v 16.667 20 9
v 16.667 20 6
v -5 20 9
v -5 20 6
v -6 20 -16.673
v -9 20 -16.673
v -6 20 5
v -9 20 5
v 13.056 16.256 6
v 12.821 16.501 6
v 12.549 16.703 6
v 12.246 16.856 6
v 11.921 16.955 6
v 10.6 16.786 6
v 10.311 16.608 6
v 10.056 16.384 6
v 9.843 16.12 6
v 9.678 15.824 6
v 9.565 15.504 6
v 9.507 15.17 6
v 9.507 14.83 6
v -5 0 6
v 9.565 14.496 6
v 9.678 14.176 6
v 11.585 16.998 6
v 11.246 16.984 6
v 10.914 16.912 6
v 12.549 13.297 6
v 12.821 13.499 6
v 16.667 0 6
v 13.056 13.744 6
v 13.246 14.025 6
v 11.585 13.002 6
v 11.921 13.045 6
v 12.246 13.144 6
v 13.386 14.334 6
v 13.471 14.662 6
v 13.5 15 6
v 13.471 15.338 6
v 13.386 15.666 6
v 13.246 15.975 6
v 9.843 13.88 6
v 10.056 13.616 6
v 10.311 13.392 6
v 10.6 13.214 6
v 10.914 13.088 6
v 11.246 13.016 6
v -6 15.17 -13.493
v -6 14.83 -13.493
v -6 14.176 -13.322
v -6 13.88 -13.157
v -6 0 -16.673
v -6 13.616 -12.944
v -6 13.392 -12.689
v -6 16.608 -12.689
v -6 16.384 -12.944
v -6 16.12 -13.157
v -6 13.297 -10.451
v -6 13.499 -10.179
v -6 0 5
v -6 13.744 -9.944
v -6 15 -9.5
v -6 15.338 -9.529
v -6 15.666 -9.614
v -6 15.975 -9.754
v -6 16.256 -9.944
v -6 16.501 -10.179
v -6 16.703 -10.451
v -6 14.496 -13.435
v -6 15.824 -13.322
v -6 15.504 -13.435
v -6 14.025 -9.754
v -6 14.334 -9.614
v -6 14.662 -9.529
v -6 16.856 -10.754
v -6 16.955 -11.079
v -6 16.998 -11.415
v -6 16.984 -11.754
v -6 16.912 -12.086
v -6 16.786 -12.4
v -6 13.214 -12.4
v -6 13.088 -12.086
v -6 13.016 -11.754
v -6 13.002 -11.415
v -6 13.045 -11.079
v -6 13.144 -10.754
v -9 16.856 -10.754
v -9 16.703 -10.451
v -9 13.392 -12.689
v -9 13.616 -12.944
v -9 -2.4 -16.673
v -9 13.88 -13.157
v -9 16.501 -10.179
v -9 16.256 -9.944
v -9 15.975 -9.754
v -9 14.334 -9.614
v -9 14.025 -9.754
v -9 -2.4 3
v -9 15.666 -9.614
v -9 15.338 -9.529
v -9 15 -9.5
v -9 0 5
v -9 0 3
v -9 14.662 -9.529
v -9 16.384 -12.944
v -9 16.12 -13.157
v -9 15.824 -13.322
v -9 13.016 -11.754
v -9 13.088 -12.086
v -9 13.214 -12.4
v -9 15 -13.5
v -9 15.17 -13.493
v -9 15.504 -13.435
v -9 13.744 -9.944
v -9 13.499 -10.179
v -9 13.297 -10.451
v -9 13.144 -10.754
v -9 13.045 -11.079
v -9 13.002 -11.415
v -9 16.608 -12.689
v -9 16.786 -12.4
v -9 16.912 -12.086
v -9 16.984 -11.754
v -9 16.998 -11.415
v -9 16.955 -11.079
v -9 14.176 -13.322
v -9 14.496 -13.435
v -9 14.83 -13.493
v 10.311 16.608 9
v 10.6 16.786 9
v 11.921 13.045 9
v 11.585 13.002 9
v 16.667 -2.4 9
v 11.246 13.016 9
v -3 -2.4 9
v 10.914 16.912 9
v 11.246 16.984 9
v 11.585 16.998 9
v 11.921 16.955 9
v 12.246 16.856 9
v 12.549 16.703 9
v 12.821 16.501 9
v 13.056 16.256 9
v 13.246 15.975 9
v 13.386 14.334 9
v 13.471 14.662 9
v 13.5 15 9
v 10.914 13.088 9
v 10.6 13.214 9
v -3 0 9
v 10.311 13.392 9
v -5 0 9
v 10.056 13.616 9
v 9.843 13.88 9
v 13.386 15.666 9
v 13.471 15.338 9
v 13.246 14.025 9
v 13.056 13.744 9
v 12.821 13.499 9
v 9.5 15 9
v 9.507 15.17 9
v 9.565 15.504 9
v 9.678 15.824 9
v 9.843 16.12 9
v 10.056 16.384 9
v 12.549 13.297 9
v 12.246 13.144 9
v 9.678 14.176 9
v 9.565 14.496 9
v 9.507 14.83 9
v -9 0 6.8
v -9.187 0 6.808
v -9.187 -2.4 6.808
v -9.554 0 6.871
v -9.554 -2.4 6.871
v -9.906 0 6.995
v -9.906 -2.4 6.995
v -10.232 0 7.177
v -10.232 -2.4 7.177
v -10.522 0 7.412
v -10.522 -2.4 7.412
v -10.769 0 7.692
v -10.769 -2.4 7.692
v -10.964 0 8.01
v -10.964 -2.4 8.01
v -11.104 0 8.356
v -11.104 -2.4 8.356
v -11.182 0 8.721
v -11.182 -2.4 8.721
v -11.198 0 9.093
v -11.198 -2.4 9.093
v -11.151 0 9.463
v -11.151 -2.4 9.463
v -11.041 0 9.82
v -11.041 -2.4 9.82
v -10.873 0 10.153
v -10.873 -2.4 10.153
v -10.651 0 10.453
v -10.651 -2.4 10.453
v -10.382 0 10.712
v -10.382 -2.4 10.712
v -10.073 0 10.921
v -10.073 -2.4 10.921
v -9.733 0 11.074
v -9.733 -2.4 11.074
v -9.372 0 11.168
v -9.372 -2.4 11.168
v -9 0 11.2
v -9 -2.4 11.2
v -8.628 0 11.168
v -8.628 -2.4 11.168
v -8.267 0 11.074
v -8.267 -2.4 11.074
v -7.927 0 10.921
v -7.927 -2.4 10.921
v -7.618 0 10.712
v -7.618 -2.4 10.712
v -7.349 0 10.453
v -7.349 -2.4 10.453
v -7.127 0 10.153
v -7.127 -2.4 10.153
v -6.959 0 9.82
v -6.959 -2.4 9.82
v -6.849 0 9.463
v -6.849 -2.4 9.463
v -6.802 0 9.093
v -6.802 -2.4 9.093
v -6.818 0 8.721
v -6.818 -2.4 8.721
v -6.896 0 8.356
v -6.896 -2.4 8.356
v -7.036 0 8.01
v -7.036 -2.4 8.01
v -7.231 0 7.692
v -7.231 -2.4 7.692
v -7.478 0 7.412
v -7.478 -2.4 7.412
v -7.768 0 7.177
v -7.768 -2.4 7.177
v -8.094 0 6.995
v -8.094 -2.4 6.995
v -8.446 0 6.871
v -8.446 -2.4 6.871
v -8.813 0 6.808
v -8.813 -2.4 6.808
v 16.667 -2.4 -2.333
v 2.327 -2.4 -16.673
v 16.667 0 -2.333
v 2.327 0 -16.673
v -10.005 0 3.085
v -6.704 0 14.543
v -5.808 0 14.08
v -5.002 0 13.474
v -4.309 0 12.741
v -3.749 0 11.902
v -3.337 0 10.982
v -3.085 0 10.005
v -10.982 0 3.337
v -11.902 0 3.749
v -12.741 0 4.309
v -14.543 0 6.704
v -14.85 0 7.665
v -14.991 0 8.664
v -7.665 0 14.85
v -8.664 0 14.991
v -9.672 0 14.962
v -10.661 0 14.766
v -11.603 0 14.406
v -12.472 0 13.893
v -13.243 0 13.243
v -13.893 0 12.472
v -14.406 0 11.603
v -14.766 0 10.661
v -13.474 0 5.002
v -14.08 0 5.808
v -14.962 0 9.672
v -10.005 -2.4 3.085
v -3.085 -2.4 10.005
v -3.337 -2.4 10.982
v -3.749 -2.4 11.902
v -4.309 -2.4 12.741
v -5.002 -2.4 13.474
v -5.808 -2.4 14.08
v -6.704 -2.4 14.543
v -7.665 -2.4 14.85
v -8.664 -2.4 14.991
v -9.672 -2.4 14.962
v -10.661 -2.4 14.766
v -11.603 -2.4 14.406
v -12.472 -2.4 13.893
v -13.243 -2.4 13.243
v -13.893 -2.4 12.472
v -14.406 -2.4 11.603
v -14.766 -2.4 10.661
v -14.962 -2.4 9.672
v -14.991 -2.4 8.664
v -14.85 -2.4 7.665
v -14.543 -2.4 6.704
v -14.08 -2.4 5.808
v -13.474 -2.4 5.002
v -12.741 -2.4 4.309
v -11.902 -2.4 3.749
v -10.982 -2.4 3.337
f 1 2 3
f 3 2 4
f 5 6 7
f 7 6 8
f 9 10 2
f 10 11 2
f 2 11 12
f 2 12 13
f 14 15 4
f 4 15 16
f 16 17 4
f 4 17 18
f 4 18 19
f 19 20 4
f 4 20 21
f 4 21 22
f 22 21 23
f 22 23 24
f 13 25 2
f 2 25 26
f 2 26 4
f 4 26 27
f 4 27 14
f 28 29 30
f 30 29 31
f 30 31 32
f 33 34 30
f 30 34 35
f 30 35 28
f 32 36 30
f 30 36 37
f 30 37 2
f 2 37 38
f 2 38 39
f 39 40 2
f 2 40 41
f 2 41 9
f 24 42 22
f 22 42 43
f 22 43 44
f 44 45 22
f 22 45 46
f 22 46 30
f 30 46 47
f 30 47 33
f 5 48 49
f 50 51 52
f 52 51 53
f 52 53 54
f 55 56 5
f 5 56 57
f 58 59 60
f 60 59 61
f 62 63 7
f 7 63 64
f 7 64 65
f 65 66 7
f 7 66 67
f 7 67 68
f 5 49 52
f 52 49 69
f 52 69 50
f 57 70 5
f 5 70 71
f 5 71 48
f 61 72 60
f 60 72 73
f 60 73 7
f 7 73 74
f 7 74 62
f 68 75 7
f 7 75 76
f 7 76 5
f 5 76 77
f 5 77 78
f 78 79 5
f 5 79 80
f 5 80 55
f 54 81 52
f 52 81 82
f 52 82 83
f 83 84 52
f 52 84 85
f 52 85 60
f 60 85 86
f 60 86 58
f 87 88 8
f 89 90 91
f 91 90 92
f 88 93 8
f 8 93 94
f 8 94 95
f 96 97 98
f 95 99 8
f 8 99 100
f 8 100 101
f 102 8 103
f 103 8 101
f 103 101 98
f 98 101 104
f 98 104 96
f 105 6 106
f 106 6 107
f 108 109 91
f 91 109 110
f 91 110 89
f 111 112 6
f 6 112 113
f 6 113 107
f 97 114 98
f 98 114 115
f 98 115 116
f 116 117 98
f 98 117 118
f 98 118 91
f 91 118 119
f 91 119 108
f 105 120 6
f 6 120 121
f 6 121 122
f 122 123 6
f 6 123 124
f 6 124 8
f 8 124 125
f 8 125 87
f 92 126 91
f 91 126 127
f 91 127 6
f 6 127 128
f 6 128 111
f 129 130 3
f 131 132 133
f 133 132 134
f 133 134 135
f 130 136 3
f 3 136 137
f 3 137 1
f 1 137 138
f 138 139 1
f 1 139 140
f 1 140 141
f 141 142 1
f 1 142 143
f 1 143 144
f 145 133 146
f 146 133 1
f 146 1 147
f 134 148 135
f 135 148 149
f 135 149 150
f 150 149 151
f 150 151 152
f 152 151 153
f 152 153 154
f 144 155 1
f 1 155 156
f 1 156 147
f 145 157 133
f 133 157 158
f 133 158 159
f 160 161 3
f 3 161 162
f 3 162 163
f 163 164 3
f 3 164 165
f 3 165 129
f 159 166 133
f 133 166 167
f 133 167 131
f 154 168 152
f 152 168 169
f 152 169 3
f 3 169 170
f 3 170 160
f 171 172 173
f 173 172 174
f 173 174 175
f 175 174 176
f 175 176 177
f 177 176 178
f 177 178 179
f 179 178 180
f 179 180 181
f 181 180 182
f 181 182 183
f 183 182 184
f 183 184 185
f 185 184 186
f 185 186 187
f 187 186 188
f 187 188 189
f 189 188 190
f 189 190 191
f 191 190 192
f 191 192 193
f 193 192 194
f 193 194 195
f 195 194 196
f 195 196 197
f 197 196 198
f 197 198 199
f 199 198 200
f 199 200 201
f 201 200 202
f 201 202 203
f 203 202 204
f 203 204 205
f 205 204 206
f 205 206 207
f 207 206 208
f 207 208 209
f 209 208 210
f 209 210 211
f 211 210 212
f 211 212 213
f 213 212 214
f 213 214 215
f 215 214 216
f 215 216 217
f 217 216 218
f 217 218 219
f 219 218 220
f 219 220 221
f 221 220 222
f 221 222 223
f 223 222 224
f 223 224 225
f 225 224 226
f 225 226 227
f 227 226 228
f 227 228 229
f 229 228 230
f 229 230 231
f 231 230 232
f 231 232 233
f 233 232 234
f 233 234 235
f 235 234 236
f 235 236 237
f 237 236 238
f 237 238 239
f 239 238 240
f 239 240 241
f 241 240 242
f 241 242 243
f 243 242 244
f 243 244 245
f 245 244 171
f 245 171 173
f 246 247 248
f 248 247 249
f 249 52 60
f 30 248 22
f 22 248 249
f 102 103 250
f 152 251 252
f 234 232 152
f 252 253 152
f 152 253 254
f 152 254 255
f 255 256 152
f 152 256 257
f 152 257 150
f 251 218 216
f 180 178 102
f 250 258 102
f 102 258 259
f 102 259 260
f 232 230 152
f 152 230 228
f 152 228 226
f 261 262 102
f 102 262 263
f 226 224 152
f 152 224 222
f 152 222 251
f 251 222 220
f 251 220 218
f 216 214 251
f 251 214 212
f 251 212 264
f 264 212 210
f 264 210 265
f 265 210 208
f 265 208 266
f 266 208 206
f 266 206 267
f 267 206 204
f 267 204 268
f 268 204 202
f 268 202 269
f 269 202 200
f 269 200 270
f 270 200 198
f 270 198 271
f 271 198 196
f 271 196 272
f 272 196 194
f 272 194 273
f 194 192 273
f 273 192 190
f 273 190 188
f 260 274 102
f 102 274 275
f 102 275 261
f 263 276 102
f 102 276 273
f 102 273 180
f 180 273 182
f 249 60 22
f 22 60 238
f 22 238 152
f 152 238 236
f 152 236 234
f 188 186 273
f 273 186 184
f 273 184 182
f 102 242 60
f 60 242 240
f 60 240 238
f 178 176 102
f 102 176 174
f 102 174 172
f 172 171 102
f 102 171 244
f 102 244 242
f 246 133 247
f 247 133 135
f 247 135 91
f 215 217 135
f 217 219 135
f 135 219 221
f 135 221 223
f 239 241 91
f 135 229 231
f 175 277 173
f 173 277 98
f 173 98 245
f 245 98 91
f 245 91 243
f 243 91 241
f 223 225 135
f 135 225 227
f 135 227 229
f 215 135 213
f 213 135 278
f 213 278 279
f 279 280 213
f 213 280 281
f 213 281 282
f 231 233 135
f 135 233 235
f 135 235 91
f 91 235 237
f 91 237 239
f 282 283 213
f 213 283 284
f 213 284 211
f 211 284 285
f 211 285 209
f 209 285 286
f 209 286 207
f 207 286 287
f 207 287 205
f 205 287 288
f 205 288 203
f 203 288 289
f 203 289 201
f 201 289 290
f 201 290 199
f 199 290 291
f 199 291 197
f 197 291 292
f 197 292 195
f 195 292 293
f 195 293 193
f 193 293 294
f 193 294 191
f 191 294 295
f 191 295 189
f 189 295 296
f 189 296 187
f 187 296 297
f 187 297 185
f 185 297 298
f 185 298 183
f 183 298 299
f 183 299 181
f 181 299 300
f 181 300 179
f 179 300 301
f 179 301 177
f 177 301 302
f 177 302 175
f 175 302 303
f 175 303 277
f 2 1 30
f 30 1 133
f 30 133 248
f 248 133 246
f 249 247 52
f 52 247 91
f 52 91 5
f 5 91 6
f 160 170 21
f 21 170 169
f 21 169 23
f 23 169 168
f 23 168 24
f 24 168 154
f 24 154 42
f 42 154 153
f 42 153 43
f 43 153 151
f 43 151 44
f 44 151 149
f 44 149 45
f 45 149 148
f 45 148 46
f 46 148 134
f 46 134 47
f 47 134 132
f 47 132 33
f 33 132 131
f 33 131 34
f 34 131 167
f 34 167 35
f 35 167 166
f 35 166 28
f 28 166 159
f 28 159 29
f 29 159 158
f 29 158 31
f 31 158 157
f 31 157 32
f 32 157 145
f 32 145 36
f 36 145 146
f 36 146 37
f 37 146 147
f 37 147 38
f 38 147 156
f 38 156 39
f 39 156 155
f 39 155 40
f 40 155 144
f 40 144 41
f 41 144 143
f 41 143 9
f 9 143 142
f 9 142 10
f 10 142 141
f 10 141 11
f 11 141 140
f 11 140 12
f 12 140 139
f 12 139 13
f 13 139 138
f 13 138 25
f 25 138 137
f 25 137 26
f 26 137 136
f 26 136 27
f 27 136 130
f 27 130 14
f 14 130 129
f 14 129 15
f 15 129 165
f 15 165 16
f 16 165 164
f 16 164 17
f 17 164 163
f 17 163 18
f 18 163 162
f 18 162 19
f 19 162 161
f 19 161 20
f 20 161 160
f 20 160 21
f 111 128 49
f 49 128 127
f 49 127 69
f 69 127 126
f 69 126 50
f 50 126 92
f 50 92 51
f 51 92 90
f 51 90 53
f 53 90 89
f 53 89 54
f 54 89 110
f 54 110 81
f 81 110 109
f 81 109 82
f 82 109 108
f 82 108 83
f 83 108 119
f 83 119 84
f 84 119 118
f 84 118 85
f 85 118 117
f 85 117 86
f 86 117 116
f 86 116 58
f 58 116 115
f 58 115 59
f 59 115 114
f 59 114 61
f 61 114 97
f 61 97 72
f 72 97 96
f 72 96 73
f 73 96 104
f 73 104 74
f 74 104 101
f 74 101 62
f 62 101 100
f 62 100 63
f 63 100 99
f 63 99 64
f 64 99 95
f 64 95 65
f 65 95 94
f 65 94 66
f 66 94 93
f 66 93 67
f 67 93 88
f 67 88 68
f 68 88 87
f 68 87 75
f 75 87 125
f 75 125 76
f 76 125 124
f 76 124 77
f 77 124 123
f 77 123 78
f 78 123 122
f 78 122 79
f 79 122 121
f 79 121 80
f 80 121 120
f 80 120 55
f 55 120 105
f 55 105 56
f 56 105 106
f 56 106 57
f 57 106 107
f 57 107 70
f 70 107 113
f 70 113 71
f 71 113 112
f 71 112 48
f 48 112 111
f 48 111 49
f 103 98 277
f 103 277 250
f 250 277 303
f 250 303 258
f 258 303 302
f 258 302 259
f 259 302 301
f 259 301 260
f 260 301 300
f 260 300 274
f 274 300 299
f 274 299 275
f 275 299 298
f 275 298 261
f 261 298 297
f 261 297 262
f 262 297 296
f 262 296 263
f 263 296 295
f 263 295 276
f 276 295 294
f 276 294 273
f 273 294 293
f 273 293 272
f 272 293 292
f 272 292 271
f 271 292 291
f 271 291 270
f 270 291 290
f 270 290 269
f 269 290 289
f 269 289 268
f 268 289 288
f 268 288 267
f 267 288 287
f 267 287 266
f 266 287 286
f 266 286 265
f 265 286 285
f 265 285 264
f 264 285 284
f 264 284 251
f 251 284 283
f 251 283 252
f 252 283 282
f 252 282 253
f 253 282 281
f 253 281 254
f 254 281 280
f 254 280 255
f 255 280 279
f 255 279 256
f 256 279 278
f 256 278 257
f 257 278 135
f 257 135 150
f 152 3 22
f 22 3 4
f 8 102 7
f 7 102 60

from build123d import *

# Parameters (mm, degrees)
BOSS_EXTRUDE1_DEPTH     = 5
BOSS_EXTRUDE2_DEPTH     = 15
SKETCH3_R               = 2
CUT_EXTRUDE1_DEPTH      = 34.496268449
SKETCH4_R               = 2
CUT_EXTRUDE2_DEPTH      = 34.496268449
FILLET1_R               = 1
BOSS_EXTRUDE3_DEPTH     = 2.4
BOSS_EXTRUDE4_DEPTH     = 20
CUT_EXTRUDE3_DEPTH      = 51.527220387
CUT_EXTRUDE3_DEPTH_BACK = 51.527220387
SKETCH7_R               = 2
CUT_EXTRUDE4_DEPTH      = 51.527220387
CUT_EXTRUDE4_DEPTH_BACK = 51.527220387
SKETCH8_R               = 2
CUT_EXTRUDE5_DEPTH      = 20
CUT_EXTRUDE6_DEPTH      = 32.914256521
CUT_EXTRUDE7_DEPTH      = 32.914256521
SKETCH12_R              = 6
BOSS_EXTRUDE5_DEPTH     = 2.4
CUT_EXTRUDE8_DEPTH      = 31.915717398
CUT_EXTRUDE8_DEPTH_BACK = 31.915717398
SKETCH13_R              = 2.2
SKETCH14_R              = 4
CUT_EXTRUDE9_DEPTH      = 31.915717398
CUT_EXTRUDE10_DEPTH     = 31.915717398


with BuildPart() as part:
    # Sketch1 → Boss-Extrude1 (new body)
    with BuildSketch(Plane(origin=(0, 0, 0), x_dir=(1, 0, 0), z_dir=(0, 1, 0))):
        Polygon((0, 0), (0, 19), (19, 0), align=None)
    extrude(amount=BOSS_EXTRUDE1_DEPTH)

    # Sketch2 → Boss-Extrude2 (add)
    with BuildSketch(Plane(origin=(0, 5, 0), x_dir=(1, 0, 0), z_dir=(0, 1, 0))):
        Polygon((0, 19), (0, 0), (19, 0), (16, 3), (3, 3), (3, 16), align=None)
    extrude(amount=BOSS_EXTRUDE2_DEPTH)

    # Sketch3 → Cut-Extrude1 (cut, through all)
    with BuildSketch(Plane.XY):
        with Locations((11.5, 15)):
            Circle(SKETCH3_R)
    extrude(amount=-CUT_EXTRUDE1_DEPTH, mode=Mode.SUBTRACT)

    # Sketch4 → Cut-Extrude2 (cut, through all)
    with BuildSketch(Plane.ZY):
        with Locations((-11.5, 15)):
            Circle(SKETCH4_R)
    extrude(amount=-CUT_EXTRUDE2_DEPTH, mode=Mode.SUBTRACT)

    # Fillet1
    fillet1_edges = [part.edges().sort_by_distance(p)[0] for p in [
        (9.5, 20, -3),
        (3, 20, -9.5),
        (1.5, 20, -17.5),
        (17.5, 20, -1.5),
        (19, 10, 0),
        (0, 10, -19),
    ]]
    fillet(fillet1_edges, radius=FILLET1_R)

    # Sketch5 → Boss-Extrude3 (add)
    with BuildSketch(Plane.XZ):
        Polygon((28, 9), (-9, 9), (-9, -28), align=None)
    extrude(amount=BOSS_EXTRUDE3_DEPTH)

    # Sketch6 → Boss-Extrude4 (add)
    with BuildSketch(Plane(origin=(0, 0, 0), x_dir=(1, 0, 0), z_dir=(0, 1, 0))):
        Polygon((-9, -9), (-9, 16.673246444), (-6, 16.673246444), (-6, -6), (16.666866389, -6), (16.666866389, -9), align=None)
    extrude(amount=BOSS_EXTRUDE4_DEPTH)

    # Sketch7 → Cut-Extrude3 (cut, two sides: drawn at the far end of the back side and taken through both)
    with BuildSketch(Plane.XY.offset(9).offset(-CUT_EXTRUDE3_DEPTH_BACK)):
        with Locations((11.5, 15)):
            Circle(SKETCH7_R)
    extrude(amount=CUT_EXTRUDE3_DEPTH + CUT_EXTRUDE3_DEPTH_BACK, mode=Mode.SUBTRACT)

    # Sketch8 → Cut-Extrude4 (cut, two sides: drawn at the far end of the back side and taken through both)
    with BuildSketch(Plane.ZY.offset(9).offset(-CUT_EXTRUDE4_DEPTH_BACK)):
        with Locations((-11.5, 15)):
            Circle(SKETCH8_R)
    extrude(amount=CUT_EXTRUDE4_DEPTH + CUT_EXTRUDE4_DEPTH_BACK, mode=Mode.SUBTRACT)

    # Sketch9 → Cut-Extrude5 (cut)
    with BuildSketch(Plane(origin=(0, 0, 0), x_dir=(1, 0, 0), z_dir=(0, 1, 0))):
        with BuildLine():
            Line((16.666866389, -6), (16.666866389, -9))
            Line((16.666866389, -9), (28, -9))
            Line((28, -9), (17.292893219, 1.707106781))
            ThreePointArc((17.292893219, 1.707106781), (17.524431974, 0.655116604), (16.666866389, 0.003292399))
            Line((16.666866389, 0.003292399), (16.666866389, -6))
        make_face()
        with BuildLine():
            Line((-6, 16.673246444), (0.003831968, 16.673246444))
            ThreePointArc((0.003831968, 16.673246444), (0.658123366, 17.525531279), (1.707106781, 17.292893219))
            Line((1.707106781, 17.292893219), (-9, 28))
            Line((-9, 28), (-9, 16.673246444))
            Line((-9, 16.673246444), (-6, 16.673246444))
        make_face()
    extrude(amount=-CUT_EXTRUDE5_DEPTH, mode=Mode.SUBTRACT)

    # Sketch10 → Cut-Extrude6 (cut, through all)
    with BuildSketch(Plane(origin=(0, 0, 0), x_dir=(1, 0, 0), z_dir=(0, 1, 0))):
        with BuildLine():
            Line((1.707106781, 17.292893219), (17.292893219, 1.707106781))
            ThreePointArc((17.292893219, 1.707106781), (17.50966597, 0.617316568), (16.585786438, 0))
            Line((16.585786438, 0), (0, 0))
            Line((0, 0), (0, 16.585786438))
            ThreePointArc((0, 16.585786438), (0.617316568, 17.50966597), (1.707106781, 17.292893219))
        make_face()
    extrude(amount=CUT_EXTRUDE6_DEPTH, mode=Mode.SUBTRACT)

    # Sketch11 → Cut-Extrude7 (cut, through all)
    with BuildSketch(Plane(origin=(0, 0, 0), x_dir=(1, 0, 0), z_dir=(0, 1, 0))):
        with BuildLine():
            Line((2.326753556, 16.673246444), (0.003831968, 16.673246444))
            ThreePointArc((0.003831968, 16.673246444), (0.658123366, 17.525531279), (1.707106781, 17.292893219))
            Line((1.707106781, 17.292893219), (2.326753556, 16.673246444))
        make_face()
        with BuildLine():
            Line((17.292893219, 1.707106781), (16.666866389, 2.333133611))
            Line((16.666866389, 2.333133611), (16.666866389, 0.003292399))
            ThreePointArc((16.666866389, 0.003292399), (17.524431974, 0.655116604), (17.292893219, 1.707106781))
        make_face()
    extrude(amount=-CUT_EXTRUDE7_DEPTH, mode=Mode.SUBTRACT)

    # Sketch12 → Boss-Extrude5 (add)
    with BuildSketch(Plane.XZ.offset(2.4)):
        with Locations((-9, 9)):
            Circle(SKETCH12_R)
    extrude(amount=-BOSS_EXTRUDE5_DEPTH)

    # Sketch13 → Cut-Extrude8 (cut, two sides: drawn at the far end of the back side and taken through both)
    with BuildSketch(Plane(origin=(0, 0, 0), x_dir=(1, 0, 0), z_dir=(0, 1, 0)).offset(-CUT_EXTRUDE8_DEPTH_BACK)):
        with Locations(Location((-9, -9, 0), (0, 0, 270))):
            Circle(SKETCH13_R)
    extrude(amount=CUT_EXTRUDE8_DEPTH + CUT_EXTRUDE8_DEPTH_BACK, mode=Mode.SUBTRACT)

    # Sketch14 → Cut-Extrude9 (cut, through all)
    with BuildSketch(Plane(origin=(0, 0, 0), x_dir=(1, 0, 0), z_dir=(0, 1, 0))):
        with Locations((-9, -9)):
            Circle(SKETCH14_R)
    extrude(amount=CUT_EXTRUDE9_DEPTH, mode=Mode.SUBTRACT)

    # Sketch15 → Cut-Extrude10 (cut, through all)
    with BuildSketch(Plane(origin=(0, 0, 0), x_dir=(1, 0, 0), z_dir=(0, 1, 0))):
        with BuildLine():
            Line((-9, -5), (-5, -5))
            Line((-5, -5), (-5, -9))
            ThreePointArc((-5, -9), (-6.171572875, -6.171572875), (-9, -5))
        make_face()
    extrude(amount=CUT_EXTRUDE10_DEPTH, mode=Mode.SUBTRACT)


solid = part.part
